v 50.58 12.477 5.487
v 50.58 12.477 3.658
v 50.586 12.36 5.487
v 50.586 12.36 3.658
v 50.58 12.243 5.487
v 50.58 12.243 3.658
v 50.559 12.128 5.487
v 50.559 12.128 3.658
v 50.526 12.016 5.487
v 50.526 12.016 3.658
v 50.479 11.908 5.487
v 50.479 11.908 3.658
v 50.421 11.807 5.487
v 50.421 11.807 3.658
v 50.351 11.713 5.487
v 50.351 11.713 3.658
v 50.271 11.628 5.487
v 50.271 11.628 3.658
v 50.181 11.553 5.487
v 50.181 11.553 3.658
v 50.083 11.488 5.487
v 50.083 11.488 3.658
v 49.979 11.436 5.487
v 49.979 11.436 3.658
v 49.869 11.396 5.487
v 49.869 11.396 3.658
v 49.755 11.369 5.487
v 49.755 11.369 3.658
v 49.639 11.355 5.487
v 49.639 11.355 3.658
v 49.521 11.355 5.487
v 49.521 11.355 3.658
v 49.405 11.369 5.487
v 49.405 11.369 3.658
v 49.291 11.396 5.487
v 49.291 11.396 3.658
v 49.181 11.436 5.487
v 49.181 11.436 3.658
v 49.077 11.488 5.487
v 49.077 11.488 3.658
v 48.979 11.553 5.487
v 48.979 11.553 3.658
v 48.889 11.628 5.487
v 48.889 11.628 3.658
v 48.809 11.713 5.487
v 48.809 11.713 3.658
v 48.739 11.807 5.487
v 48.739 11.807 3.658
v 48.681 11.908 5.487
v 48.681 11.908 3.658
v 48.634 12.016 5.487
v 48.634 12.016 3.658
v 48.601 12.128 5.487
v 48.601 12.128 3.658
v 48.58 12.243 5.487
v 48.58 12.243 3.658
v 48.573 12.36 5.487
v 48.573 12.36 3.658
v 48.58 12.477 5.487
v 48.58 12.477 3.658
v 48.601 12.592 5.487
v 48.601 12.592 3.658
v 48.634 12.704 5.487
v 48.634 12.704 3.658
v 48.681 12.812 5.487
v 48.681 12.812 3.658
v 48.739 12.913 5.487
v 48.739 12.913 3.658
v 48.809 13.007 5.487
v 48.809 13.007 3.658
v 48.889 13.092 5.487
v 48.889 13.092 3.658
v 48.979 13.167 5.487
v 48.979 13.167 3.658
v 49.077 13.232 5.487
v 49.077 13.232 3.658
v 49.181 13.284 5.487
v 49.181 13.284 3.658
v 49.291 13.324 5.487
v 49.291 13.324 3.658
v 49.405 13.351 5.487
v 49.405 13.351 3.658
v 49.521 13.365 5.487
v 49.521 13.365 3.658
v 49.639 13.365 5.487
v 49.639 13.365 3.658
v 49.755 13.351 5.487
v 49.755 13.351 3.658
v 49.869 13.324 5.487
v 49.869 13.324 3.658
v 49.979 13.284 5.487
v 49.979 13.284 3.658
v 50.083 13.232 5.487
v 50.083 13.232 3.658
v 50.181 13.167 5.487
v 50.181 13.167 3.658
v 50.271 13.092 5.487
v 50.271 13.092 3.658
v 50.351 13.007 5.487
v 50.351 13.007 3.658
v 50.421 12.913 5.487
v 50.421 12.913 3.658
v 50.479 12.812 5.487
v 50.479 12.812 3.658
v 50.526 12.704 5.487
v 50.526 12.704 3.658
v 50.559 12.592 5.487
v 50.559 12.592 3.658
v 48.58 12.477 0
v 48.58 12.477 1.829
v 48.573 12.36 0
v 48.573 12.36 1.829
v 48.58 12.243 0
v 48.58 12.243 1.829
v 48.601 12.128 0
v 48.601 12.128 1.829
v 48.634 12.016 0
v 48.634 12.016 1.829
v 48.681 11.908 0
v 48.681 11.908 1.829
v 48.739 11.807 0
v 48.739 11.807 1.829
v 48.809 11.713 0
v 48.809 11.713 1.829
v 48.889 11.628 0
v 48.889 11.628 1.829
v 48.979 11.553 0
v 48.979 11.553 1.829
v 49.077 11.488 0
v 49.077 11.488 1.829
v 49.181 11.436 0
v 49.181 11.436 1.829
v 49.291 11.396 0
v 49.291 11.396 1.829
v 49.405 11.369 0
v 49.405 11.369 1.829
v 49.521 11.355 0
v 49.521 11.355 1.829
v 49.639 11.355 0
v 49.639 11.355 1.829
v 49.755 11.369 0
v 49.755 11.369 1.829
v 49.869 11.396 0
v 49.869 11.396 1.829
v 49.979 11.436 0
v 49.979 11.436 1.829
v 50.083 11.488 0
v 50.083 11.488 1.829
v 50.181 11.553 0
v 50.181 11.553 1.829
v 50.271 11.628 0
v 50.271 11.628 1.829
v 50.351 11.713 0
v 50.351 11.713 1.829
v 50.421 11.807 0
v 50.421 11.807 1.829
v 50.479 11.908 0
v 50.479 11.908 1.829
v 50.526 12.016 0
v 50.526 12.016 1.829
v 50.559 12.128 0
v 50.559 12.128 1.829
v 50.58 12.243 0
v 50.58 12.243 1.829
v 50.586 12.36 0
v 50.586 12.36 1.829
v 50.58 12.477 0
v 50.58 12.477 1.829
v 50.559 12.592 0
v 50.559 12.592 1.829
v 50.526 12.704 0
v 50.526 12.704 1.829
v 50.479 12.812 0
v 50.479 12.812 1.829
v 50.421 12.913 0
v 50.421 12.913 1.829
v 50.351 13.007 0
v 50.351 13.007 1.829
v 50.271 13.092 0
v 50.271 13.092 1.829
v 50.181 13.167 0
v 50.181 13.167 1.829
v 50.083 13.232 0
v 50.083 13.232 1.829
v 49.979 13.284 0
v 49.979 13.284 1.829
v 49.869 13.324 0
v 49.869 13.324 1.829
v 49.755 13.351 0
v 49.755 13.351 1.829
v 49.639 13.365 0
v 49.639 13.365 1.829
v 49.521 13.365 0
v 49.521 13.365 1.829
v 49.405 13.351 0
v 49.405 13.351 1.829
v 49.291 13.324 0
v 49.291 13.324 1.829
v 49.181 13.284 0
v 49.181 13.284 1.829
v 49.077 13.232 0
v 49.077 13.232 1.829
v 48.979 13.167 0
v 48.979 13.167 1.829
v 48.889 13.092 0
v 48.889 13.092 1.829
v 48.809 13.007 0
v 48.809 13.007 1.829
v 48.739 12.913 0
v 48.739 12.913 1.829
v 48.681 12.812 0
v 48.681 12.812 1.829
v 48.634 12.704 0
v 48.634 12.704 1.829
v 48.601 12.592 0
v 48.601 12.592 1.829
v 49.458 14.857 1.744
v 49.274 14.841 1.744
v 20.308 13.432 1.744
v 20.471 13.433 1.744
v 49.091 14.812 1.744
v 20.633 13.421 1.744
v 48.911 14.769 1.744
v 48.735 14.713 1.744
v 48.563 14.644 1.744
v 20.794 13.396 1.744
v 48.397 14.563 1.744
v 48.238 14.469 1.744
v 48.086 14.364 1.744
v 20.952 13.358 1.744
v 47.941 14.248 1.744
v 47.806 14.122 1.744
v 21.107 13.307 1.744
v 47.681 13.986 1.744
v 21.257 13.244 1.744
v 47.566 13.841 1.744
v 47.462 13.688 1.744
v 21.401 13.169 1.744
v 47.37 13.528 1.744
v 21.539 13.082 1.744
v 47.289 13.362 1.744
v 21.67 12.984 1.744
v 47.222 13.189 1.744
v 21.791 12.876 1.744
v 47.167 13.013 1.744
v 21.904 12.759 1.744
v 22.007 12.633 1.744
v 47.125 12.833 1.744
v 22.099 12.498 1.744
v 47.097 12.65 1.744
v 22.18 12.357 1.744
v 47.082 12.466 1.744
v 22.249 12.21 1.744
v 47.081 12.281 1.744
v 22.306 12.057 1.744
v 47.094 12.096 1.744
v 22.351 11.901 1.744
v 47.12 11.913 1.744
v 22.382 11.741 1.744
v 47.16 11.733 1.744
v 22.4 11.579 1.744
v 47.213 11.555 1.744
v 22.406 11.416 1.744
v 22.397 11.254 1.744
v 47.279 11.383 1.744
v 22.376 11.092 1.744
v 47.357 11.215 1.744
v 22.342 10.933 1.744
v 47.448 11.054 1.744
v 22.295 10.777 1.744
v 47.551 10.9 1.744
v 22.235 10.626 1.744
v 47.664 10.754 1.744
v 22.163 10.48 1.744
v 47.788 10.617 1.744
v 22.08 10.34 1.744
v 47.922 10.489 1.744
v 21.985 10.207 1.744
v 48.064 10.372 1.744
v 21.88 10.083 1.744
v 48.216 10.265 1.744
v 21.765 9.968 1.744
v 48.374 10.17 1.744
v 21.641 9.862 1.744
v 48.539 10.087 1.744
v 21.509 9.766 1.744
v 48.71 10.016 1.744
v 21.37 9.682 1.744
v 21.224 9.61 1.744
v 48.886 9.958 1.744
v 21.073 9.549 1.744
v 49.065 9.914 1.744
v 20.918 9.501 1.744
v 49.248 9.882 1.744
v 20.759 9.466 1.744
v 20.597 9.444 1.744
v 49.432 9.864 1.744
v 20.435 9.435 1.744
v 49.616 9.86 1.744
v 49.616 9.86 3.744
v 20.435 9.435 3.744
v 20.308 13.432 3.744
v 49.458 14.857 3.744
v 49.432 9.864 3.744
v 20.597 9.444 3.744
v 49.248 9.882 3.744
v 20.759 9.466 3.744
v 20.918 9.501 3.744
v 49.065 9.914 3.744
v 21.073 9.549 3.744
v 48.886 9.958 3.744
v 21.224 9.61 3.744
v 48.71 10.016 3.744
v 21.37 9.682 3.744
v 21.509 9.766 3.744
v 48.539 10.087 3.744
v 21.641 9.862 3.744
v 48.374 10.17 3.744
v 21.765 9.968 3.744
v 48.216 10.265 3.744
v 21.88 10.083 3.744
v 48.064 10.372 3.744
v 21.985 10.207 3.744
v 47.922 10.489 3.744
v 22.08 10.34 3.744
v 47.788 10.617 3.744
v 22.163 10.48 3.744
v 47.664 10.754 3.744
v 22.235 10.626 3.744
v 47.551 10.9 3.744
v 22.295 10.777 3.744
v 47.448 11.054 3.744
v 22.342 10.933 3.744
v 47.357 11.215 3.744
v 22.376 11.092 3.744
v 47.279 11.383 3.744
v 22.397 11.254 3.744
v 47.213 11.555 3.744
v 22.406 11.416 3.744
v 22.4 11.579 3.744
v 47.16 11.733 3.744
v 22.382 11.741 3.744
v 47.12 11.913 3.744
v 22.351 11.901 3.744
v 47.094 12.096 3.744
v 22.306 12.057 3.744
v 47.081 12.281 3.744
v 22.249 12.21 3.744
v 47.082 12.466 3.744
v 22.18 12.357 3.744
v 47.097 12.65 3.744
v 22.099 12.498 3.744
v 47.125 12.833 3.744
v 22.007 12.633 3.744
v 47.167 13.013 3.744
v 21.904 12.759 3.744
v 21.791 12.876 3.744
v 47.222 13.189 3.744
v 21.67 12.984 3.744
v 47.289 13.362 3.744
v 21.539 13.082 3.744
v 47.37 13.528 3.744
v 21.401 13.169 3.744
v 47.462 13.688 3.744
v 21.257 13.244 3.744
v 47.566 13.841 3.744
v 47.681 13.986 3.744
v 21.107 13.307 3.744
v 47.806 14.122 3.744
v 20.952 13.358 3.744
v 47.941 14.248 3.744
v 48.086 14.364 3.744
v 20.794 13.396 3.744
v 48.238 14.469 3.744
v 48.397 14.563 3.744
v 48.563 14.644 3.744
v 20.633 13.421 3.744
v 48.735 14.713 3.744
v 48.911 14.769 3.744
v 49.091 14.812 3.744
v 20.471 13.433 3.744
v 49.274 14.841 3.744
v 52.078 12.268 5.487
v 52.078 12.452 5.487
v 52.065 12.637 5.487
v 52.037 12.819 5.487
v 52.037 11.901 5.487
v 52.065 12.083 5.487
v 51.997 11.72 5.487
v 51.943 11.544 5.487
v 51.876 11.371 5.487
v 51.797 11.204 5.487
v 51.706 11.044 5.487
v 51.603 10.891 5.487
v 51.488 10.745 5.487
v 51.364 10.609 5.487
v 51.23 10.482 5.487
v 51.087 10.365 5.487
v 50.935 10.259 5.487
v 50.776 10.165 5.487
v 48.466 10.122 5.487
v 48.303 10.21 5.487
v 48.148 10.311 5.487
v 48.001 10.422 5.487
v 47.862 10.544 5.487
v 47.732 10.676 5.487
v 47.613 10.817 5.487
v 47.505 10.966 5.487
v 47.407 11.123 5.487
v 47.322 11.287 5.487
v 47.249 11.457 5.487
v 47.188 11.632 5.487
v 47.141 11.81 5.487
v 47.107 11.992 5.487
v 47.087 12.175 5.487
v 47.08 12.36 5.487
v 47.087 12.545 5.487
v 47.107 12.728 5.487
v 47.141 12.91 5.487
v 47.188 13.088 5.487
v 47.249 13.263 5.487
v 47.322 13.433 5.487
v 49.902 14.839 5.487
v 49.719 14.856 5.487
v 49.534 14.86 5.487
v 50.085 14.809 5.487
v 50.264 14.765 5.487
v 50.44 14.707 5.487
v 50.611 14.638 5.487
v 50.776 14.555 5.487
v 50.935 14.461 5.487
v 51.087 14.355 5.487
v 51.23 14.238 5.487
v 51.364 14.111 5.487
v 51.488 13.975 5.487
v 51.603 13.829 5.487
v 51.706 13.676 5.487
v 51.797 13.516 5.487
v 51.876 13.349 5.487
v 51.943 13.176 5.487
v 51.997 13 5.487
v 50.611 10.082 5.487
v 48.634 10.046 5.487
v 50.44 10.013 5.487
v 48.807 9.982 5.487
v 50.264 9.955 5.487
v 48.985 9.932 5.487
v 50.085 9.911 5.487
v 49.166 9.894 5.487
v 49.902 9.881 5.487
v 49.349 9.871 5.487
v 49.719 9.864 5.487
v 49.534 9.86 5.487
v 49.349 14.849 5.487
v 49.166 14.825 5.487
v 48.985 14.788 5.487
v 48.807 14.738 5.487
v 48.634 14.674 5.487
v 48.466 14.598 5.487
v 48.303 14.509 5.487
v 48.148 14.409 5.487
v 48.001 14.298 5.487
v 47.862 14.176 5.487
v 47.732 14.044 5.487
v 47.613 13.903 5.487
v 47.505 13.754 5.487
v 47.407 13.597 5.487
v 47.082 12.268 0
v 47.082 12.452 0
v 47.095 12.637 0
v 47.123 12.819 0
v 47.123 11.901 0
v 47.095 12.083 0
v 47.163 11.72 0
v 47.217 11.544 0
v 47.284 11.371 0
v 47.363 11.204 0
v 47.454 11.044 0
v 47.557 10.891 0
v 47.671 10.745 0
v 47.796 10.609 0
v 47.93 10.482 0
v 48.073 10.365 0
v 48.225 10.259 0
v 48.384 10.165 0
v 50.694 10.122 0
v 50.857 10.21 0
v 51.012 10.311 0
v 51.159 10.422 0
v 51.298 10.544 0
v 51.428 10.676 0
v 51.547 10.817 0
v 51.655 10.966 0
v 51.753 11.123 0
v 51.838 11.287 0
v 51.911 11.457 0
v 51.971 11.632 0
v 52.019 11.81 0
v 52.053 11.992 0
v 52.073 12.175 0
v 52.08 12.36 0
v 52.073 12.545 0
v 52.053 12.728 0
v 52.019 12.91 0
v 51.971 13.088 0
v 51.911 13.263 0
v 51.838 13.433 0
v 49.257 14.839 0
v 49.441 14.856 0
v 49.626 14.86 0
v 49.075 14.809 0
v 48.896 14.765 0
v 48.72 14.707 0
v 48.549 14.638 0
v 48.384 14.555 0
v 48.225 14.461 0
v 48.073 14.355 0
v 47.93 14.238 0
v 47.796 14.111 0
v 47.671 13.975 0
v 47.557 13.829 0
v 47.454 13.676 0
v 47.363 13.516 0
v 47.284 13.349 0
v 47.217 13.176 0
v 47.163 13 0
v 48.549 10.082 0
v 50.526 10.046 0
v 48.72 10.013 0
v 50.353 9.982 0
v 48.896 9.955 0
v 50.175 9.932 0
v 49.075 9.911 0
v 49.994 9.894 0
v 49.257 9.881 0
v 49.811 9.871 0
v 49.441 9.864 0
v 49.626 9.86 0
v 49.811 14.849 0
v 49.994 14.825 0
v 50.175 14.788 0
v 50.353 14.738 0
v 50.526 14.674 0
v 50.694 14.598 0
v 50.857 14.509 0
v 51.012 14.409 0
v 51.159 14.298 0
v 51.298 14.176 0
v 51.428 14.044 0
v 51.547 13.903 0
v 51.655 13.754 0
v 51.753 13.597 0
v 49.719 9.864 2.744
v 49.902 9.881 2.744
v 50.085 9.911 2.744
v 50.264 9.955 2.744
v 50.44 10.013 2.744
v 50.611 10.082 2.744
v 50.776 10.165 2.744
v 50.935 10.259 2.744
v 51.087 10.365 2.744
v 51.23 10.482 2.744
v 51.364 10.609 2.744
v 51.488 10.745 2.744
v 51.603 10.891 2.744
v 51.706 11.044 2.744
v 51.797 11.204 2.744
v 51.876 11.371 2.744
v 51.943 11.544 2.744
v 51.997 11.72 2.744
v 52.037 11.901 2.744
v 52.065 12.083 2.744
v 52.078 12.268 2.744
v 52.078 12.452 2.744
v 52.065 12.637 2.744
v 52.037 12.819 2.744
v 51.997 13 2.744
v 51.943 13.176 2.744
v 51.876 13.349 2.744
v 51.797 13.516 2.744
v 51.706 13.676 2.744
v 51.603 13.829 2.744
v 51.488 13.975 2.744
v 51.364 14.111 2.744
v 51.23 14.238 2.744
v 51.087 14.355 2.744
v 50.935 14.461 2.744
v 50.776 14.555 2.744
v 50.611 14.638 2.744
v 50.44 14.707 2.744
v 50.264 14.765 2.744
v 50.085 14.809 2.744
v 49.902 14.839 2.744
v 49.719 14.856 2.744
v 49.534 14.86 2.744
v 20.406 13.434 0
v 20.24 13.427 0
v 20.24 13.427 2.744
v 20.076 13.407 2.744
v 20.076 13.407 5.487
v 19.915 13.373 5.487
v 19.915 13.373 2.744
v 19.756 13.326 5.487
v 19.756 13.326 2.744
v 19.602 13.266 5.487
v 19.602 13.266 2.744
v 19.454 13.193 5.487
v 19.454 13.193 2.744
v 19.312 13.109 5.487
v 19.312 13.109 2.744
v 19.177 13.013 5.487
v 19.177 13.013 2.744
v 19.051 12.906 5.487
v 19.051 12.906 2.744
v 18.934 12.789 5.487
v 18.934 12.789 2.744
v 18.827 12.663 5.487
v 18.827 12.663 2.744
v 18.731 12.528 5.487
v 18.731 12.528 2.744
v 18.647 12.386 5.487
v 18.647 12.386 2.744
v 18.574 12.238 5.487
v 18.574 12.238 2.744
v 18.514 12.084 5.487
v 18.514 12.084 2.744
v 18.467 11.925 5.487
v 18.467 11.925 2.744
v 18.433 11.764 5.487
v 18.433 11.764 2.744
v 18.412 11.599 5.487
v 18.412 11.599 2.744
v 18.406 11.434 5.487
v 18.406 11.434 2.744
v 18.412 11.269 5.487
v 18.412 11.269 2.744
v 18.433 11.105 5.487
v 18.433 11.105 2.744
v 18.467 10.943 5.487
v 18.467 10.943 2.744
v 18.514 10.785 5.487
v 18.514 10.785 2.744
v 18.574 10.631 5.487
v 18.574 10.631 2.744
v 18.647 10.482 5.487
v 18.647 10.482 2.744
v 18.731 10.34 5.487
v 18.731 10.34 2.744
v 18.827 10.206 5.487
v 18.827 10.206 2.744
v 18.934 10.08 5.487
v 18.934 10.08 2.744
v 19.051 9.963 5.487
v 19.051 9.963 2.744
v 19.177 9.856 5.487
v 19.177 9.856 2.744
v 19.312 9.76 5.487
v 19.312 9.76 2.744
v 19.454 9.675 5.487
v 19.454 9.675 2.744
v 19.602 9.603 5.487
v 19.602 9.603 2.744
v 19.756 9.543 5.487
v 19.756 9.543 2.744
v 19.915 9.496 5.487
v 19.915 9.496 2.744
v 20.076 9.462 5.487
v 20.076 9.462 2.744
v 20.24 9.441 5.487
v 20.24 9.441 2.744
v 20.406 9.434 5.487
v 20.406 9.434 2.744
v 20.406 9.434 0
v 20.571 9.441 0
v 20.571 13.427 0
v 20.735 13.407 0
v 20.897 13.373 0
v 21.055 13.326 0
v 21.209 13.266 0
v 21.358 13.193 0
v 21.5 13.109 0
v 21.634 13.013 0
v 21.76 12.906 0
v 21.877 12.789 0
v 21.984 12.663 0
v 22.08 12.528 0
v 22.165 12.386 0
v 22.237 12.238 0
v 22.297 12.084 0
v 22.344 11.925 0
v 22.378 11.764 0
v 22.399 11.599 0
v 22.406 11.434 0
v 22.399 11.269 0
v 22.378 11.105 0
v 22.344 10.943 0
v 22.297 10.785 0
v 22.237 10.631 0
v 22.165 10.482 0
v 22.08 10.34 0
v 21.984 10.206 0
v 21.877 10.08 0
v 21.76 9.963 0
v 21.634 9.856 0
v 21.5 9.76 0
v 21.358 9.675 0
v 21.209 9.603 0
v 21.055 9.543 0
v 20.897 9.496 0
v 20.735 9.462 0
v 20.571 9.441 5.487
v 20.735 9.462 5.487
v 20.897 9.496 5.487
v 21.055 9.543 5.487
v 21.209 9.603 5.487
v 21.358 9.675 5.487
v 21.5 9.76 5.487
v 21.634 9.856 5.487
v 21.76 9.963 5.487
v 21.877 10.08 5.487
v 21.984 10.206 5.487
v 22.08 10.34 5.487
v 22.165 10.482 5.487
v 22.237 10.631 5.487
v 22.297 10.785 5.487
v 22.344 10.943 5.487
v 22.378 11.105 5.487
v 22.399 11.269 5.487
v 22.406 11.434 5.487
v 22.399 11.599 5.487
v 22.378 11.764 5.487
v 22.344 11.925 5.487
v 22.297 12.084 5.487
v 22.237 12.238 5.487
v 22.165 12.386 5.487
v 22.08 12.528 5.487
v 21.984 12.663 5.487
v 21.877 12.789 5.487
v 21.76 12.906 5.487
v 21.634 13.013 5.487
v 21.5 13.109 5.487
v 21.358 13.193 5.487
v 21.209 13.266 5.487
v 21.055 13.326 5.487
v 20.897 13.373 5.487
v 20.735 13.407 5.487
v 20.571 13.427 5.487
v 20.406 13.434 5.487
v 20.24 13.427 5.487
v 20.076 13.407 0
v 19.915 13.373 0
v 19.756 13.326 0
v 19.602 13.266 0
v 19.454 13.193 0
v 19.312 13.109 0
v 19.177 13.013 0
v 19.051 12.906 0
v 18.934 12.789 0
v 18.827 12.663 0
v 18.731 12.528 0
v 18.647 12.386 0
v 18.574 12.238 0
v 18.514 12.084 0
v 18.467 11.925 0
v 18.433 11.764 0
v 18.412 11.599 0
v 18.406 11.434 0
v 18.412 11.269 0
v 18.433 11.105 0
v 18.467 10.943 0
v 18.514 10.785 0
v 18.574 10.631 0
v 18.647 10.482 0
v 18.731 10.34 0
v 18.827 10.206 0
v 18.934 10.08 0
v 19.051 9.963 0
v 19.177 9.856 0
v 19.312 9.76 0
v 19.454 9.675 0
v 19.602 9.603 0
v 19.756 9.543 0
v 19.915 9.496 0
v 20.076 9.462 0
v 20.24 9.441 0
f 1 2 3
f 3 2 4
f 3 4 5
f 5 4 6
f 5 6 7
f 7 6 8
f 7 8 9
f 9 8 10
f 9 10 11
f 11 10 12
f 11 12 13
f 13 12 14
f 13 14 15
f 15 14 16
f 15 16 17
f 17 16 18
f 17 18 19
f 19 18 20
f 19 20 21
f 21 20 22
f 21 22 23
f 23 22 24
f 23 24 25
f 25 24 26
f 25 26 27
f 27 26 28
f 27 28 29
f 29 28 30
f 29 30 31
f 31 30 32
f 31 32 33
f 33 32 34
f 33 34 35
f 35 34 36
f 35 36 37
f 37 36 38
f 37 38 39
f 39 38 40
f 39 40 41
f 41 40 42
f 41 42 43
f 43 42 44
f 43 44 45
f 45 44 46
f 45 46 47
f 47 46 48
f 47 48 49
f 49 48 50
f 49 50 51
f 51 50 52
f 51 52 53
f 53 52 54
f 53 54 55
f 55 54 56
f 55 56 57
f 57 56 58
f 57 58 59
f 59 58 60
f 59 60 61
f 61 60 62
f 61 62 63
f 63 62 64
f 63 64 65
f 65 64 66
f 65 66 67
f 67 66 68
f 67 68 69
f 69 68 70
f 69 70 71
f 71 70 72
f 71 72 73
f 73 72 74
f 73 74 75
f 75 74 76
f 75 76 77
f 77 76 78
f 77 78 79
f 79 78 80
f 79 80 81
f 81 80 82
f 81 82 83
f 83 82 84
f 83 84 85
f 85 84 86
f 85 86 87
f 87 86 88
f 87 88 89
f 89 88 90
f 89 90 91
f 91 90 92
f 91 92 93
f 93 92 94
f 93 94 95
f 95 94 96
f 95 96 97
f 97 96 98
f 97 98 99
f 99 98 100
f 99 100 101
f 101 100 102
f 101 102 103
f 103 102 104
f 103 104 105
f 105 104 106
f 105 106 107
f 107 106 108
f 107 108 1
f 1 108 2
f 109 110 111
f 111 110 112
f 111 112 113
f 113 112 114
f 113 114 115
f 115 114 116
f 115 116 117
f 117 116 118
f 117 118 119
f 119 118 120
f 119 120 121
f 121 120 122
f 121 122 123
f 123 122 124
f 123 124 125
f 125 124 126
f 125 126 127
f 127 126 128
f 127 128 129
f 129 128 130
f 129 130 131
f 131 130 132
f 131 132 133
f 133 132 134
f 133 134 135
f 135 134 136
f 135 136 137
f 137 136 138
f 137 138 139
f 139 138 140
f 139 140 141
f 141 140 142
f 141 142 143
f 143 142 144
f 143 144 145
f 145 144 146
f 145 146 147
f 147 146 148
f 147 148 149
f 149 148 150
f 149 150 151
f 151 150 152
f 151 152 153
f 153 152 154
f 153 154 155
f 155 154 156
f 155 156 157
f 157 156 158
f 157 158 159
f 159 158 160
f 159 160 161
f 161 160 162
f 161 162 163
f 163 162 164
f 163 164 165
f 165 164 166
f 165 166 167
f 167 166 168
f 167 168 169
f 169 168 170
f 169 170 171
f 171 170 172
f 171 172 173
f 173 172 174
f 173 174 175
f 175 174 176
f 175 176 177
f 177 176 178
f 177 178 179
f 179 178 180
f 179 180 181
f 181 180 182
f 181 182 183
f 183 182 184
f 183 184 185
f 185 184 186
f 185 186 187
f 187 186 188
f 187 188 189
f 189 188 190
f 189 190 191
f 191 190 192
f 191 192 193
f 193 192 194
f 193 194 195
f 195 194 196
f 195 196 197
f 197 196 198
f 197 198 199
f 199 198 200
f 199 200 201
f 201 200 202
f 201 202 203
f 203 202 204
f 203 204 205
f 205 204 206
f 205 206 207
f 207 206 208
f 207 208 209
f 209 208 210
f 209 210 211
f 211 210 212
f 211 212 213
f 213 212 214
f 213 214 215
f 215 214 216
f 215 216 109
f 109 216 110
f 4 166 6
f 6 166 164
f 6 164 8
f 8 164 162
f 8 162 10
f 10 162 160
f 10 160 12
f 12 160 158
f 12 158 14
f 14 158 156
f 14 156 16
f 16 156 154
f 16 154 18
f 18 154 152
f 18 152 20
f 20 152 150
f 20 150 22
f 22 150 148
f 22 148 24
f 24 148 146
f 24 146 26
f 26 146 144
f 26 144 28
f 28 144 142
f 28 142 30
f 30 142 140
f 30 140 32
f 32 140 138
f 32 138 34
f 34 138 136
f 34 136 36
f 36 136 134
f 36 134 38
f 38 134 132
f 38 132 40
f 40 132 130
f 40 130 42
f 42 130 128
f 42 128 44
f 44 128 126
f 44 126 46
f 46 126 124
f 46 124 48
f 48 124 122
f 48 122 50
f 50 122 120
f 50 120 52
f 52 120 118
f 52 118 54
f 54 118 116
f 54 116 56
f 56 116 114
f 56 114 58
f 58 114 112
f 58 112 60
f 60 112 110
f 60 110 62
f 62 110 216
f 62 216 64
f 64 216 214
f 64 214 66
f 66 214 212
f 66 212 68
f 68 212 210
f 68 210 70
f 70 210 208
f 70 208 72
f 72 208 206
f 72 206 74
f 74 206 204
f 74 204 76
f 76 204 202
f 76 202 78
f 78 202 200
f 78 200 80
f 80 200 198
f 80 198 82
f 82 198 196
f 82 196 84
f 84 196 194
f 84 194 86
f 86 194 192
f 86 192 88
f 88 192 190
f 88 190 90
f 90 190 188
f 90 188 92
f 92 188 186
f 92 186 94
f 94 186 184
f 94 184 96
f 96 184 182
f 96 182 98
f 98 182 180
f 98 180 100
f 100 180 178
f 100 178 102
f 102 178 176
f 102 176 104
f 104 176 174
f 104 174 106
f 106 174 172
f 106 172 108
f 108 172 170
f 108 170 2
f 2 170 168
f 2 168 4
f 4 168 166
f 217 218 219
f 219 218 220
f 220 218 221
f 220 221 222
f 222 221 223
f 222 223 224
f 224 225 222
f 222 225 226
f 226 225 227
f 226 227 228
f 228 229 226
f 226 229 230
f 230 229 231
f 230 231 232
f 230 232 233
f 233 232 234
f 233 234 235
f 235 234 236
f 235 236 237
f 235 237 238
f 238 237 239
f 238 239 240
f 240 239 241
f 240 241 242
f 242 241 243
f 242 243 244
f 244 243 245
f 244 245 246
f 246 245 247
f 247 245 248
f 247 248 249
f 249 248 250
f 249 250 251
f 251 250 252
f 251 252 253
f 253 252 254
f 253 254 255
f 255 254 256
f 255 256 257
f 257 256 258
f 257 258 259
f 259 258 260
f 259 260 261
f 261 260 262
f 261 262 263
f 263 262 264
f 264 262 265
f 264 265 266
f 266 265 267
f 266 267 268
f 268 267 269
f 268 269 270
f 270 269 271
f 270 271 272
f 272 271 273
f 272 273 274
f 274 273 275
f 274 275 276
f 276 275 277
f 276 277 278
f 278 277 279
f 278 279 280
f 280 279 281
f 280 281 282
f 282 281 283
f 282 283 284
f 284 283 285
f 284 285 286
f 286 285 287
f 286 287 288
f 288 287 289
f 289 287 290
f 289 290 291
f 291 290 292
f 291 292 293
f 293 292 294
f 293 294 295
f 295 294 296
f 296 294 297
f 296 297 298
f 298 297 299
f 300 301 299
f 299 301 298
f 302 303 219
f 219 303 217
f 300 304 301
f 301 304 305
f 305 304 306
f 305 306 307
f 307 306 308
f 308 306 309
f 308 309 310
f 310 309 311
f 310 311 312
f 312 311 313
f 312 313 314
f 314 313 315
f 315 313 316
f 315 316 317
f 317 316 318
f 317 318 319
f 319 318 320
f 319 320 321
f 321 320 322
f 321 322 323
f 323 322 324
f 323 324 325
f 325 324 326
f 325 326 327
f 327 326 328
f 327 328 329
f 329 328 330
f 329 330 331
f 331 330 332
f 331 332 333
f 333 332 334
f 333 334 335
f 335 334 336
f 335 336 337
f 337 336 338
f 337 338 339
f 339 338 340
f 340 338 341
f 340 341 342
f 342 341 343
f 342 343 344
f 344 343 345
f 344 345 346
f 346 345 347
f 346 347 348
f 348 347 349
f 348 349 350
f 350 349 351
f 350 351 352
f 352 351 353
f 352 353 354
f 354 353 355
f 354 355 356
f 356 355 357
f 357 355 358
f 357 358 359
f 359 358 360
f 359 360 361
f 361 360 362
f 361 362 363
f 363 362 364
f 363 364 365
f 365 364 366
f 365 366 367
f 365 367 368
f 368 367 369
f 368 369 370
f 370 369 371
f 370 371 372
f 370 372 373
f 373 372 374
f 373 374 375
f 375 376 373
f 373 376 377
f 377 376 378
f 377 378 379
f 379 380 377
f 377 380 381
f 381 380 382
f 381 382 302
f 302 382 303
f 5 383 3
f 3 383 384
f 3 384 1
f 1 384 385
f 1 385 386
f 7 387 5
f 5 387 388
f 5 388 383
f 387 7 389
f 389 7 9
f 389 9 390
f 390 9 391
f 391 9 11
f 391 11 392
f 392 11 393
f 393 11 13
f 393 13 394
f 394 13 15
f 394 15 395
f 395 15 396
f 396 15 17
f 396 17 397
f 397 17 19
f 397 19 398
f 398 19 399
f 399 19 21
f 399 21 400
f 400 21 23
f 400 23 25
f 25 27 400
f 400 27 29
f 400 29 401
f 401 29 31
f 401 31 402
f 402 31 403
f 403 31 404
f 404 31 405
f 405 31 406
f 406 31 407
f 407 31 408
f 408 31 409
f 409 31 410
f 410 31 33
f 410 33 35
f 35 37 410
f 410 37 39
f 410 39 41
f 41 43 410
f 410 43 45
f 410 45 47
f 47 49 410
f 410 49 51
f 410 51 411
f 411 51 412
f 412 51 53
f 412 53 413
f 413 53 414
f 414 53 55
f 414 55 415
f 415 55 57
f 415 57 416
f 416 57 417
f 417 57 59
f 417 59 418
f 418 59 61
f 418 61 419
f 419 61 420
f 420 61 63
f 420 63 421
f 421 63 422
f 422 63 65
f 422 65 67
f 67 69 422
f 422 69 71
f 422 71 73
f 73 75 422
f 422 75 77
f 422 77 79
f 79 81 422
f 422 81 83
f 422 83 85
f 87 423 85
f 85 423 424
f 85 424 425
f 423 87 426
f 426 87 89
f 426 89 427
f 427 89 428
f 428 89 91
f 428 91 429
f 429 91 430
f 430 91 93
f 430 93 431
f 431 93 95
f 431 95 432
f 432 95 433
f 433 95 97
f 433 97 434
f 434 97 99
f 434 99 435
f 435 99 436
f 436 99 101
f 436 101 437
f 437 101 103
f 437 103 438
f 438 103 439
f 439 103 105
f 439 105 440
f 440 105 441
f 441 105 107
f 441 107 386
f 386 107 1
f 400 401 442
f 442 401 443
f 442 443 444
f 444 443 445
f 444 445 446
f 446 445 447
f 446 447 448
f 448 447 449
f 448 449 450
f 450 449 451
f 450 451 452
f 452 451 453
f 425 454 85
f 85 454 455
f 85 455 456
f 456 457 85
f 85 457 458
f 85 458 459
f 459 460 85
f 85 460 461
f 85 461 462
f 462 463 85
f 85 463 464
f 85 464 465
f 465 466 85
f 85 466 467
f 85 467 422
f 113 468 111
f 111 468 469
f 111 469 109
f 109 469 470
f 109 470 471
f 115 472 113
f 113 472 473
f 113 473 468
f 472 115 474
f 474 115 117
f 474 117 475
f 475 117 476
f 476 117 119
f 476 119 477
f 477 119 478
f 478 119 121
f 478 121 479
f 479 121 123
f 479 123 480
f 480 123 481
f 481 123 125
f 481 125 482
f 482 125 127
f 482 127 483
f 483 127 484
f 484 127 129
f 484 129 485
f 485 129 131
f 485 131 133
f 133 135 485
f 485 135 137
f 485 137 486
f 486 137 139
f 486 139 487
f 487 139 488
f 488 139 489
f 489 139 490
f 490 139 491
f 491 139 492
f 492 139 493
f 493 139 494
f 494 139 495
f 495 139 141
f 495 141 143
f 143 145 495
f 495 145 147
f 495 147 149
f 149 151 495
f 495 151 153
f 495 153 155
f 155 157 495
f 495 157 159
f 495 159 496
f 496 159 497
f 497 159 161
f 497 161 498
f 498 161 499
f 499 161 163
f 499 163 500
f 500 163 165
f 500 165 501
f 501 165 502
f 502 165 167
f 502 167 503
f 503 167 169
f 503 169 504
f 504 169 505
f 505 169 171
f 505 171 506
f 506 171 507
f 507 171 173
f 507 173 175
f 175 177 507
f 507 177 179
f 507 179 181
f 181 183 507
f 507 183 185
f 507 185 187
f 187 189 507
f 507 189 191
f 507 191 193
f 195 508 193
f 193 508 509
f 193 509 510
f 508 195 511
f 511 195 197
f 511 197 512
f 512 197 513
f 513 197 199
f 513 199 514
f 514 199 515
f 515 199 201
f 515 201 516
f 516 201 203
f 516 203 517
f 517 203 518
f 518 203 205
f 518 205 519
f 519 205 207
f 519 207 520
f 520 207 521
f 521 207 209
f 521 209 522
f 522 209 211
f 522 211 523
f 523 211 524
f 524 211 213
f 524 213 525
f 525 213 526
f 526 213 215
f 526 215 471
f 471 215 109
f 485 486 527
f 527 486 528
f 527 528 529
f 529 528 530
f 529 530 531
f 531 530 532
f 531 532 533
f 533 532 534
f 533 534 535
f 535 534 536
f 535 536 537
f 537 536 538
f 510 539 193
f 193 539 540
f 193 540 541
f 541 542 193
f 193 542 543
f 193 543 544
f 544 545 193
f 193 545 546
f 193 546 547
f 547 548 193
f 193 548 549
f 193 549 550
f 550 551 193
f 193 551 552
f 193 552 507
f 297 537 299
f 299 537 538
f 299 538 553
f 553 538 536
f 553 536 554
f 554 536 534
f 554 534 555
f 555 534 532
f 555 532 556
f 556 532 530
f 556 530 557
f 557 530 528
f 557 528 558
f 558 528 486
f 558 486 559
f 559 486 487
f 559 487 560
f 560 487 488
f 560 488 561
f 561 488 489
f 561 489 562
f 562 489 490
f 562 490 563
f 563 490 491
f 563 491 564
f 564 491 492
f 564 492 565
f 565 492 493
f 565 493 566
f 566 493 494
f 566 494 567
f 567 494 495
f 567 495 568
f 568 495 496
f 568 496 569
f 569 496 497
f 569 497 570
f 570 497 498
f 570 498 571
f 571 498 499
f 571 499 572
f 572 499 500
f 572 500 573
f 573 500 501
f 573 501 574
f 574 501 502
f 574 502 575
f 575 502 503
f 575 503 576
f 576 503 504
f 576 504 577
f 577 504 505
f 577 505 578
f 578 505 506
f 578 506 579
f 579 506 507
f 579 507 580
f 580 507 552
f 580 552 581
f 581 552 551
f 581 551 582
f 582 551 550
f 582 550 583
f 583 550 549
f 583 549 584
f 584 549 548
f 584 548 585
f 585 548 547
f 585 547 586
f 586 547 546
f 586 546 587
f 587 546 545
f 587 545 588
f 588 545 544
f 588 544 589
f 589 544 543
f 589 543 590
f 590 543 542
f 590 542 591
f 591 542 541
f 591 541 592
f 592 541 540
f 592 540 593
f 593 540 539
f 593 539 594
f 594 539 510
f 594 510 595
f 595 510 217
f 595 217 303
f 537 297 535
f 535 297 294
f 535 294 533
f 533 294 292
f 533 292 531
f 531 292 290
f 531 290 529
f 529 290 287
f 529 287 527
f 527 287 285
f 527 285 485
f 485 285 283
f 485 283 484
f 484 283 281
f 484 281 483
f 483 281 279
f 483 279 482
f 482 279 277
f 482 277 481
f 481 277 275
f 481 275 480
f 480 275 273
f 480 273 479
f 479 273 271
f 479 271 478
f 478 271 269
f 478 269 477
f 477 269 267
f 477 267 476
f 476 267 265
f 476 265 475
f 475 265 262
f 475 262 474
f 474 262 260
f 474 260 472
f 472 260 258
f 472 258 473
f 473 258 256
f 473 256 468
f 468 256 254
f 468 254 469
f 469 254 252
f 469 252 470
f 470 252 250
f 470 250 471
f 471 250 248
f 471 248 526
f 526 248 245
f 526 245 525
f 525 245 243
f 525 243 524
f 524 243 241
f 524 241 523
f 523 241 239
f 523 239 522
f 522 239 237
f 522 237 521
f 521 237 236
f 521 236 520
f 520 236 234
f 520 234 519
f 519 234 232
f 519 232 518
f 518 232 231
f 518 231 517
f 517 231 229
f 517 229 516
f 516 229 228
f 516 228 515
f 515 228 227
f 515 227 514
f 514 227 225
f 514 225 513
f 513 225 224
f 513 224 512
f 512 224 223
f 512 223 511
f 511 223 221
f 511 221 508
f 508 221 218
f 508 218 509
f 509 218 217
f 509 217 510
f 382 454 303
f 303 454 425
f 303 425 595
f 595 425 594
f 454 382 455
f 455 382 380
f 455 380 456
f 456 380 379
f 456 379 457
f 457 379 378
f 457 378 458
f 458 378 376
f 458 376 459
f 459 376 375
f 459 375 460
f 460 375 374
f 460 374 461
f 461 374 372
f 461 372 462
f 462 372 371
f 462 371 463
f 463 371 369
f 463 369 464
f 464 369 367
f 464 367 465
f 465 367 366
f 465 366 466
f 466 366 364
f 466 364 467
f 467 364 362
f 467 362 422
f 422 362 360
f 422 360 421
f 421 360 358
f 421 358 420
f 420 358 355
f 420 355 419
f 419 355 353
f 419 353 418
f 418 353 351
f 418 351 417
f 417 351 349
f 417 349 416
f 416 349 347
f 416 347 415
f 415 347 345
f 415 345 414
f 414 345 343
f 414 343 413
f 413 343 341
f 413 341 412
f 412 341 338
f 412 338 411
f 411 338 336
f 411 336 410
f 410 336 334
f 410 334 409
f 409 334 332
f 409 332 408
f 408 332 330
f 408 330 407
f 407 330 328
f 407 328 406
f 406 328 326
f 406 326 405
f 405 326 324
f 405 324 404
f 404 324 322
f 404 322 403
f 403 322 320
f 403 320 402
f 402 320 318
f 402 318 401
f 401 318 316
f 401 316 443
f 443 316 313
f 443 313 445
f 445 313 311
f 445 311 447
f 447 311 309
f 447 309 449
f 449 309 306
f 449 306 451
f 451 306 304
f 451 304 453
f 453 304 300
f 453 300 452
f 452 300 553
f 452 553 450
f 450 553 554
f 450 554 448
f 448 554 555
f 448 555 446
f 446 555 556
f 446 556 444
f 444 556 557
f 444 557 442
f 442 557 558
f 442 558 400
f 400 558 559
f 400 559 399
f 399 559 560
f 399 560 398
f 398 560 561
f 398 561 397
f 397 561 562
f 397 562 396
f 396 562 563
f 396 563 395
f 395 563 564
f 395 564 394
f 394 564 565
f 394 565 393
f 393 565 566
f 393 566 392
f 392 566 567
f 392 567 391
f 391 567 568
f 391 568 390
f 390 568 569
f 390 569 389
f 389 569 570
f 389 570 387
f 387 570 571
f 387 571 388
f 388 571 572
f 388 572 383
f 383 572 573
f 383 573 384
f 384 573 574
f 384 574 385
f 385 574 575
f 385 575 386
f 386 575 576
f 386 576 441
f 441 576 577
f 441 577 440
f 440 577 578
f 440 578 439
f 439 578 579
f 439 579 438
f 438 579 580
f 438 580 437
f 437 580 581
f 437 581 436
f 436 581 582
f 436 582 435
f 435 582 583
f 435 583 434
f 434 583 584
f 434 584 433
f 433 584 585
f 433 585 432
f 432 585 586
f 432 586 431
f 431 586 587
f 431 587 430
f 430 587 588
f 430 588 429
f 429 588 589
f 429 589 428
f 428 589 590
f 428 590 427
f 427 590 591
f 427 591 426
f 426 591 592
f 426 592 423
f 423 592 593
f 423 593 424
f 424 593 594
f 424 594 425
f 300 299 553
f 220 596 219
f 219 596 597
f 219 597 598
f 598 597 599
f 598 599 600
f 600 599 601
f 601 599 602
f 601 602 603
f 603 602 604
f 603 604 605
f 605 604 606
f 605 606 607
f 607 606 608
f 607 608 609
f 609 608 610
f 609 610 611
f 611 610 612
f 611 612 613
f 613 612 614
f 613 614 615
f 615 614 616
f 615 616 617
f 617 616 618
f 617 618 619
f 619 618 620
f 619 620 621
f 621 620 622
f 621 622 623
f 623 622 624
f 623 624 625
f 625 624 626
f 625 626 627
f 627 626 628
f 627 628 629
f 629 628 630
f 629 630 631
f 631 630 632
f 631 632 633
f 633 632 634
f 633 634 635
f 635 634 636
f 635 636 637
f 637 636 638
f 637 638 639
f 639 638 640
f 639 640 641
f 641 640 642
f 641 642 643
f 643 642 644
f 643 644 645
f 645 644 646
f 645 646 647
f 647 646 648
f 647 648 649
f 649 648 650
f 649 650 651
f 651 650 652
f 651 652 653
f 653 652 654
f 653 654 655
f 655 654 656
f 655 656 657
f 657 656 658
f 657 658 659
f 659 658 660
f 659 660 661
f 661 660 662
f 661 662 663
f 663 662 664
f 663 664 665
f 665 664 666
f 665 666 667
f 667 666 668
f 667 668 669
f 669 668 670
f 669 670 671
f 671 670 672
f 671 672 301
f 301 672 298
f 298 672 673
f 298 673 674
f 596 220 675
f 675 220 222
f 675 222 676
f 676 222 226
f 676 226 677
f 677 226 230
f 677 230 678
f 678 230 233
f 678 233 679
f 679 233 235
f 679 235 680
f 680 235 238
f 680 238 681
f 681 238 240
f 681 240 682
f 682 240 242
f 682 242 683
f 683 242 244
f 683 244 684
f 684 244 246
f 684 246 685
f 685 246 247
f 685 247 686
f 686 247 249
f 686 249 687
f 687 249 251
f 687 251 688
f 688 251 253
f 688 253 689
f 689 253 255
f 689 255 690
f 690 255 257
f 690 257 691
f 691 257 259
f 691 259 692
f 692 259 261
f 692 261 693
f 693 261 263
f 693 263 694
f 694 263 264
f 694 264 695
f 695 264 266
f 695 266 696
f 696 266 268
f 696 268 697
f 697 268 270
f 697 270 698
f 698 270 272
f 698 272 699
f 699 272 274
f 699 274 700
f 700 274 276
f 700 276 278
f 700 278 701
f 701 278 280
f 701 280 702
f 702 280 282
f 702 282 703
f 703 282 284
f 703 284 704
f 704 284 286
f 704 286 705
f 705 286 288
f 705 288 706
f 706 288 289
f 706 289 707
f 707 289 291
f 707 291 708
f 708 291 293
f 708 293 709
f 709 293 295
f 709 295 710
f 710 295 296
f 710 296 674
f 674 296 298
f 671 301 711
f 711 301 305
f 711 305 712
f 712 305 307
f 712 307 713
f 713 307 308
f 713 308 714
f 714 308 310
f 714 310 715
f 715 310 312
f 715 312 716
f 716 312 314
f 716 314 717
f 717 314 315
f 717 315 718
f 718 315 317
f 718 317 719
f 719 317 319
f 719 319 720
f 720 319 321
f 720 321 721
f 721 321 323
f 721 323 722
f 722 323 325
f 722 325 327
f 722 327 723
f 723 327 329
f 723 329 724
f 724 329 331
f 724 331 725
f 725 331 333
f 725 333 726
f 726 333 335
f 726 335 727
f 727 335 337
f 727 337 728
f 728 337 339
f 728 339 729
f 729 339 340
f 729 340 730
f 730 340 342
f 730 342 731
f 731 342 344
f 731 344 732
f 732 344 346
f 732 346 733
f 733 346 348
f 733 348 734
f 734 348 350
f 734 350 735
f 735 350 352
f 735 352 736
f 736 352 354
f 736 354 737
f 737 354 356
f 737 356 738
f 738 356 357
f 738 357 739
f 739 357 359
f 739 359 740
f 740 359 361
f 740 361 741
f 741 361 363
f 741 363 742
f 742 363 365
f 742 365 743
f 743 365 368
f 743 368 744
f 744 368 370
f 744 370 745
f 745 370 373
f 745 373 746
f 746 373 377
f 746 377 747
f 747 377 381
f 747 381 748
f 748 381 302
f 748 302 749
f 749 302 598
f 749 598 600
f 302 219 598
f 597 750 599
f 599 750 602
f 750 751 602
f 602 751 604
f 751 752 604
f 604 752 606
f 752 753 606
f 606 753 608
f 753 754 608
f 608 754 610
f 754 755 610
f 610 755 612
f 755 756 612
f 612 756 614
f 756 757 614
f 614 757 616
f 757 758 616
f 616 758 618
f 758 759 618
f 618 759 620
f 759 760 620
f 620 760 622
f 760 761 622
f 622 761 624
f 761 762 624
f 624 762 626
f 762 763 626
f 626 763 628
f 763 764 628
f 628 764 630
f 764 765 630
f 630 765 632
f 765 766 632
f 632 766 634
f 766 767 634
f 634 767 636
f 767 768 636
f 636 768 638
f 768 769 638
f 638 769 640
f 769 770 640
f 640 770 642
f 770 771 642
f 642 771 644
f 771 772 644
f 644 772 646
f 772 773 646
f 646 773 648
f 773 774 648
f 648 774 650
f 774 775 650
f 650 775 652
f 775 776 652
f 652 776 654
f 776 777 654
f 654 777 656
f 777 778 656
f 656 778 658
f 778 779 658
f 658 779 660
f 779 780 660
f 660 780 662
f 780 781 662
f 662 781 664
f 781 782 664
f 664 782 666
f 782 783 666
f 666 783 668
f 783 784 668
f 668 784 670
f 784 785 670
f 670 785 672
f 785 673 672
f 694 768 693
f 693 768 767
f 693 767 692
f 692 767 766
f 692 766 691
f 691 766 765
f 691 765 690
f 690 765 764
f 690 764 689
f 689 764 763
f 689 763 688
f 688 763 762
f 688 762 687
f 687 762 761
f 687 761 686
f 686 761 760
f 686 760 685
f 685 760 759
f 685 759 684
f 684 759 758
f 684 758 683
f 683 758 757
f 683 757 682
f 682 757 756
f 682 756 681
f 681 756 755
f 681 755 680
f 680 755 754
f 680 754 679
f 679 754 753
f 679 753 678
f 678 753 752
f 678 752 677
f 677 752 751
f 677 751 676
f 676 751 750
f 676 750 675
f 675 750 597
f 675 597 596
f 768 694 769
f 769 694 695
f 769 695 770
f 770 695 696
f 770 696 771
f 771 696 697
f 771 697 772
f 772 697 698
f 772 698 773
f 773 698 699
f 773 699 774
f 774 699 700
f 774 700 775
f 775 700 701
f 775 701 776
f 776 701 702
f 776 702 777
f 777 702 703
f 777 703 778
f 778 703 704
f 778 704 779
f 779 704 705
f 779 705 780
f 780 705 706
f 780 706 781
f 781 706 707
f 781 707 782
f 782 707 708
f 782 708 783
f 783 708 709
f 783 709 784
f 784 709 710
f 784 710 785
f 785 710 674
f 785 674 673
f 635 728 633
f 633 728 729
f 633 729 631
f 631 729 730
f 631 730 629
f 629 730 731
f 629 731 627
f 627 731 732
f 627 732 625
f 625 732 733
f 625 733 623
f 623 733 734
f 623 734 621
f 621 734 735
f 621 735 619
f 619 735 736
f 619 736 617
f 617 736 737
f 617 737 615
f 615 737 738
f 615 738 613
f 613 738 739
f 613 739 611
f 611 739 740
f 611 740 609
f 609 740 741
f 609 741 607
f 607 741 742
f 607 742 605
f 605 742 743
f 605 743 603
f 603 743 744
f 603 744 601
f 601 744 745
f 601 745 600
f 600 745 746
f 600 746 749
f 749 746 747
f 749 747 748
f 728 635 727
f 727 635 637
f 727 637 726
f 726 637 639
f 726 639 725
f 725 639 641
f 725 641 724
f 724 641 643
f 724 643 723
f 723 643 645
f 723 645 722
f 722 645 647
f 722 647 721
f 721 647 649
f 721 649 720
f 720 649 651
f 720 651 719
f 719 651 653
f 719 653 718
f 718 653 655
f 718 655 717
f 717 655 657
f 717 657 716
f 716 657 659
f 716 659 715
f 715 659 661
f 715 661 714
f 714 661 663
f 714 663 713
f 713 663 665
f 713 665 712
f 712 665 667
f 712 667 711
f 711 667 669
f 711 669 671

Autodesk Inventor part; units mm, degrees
ref_plane "YZ Plane" through (0, 0, 0) normal (1, 0, 0) x (0, 1, 0)
sketch "Sketch4" plane through (0, 0, 0) normal (0, 0, 1) x (1, 0, 0)
  circle A0 centre (49.58, 12.36) radius 1.25 projected
  circle A1 centre (49.58, -8.84) radius 1.25 projected
  line L0 (43.38, -11.54) -> (43.38, 15.06) projected
  line L1 (43.38, 15.06) -> (16.78, 15.06) projected
  line L2 (16.78, 15.06) -> (16.78, -11.54) projected
  line L3 (16.78, -11.54) -> (43.38, -11.54) projected
  line L4 (41.7543, -9.9143) -> (18.4057, -9.9143) projected
  line L5 (18.4057, -9.9143) -> (18.4057, 13.4343) projected
  line L6 (18.4057, 13.4343) -> (41.7543, 13.4343) projected
  line L7 (41.7543, 13.4343) -> (41.7543, -9.9143) projected
  circle A2 centre (20.4057, 11.4343) radius 2
  circle A3 centre (49.58, 12.36) radius 2.5
  point P0 (0, 0)
  dimension "d8" = 4
  dimension "d9" = 5
ref_plane "Work Plane3" through (16.78, -11.54, 5.4873) normal (0, 0, -1) x (0, 1, 0)
extrude "Extrusion3" add sketch "Sketch4" along normal up to surface (5.4873 mm away) contours A0 | A2 | A3
ref_plane "Work Plane4" through (20.4057, 11.4343, 2.7437) normal (0, 0, 1) x (1, 0, 0)
sketch "Sketch5" plane through (20.4057, 11.4343, 2.7437) normal (0, 0, 1) x (1, 0, 0)
  circle A0 centre (0, 0) radius 2 projected
  circle A1 centre (29.1743, 0.9257) radius 2.5 projected
  line L0 (-0.0977, 1.9976) -> (29.0523, 3.4227)
  circle A2 centre (29.1743, 0.9257) radius 2.5 projected
  line L1 (29.2108, -1.5741) -> (0.0292, -1.9998)
  point P0 (-20.4057, -11.4343)
  point P1 (29.0523, 3.4227)
extrude "Extrusion4" add sketch "Sketch5" along normal mid plane 2 contours A0 L0 A1 L1
sketch "Sketch6" plane through (49.58, 12.36, 0) normal (0, 0, -1) x (-1, 0, 0)
  circle A0 centre (0, 0) radius 2.5 projected
  point P0 (49.58, -12.36)
hole "Hole1" at (49.58, 12.36, 0) direction (0, 0, 1) diameter 2.013 end through all thread size "M2.5x0.45" class "6H" standard "ISO Metric profile"
properties part number "DualPMTController.ScreenSpacer"
